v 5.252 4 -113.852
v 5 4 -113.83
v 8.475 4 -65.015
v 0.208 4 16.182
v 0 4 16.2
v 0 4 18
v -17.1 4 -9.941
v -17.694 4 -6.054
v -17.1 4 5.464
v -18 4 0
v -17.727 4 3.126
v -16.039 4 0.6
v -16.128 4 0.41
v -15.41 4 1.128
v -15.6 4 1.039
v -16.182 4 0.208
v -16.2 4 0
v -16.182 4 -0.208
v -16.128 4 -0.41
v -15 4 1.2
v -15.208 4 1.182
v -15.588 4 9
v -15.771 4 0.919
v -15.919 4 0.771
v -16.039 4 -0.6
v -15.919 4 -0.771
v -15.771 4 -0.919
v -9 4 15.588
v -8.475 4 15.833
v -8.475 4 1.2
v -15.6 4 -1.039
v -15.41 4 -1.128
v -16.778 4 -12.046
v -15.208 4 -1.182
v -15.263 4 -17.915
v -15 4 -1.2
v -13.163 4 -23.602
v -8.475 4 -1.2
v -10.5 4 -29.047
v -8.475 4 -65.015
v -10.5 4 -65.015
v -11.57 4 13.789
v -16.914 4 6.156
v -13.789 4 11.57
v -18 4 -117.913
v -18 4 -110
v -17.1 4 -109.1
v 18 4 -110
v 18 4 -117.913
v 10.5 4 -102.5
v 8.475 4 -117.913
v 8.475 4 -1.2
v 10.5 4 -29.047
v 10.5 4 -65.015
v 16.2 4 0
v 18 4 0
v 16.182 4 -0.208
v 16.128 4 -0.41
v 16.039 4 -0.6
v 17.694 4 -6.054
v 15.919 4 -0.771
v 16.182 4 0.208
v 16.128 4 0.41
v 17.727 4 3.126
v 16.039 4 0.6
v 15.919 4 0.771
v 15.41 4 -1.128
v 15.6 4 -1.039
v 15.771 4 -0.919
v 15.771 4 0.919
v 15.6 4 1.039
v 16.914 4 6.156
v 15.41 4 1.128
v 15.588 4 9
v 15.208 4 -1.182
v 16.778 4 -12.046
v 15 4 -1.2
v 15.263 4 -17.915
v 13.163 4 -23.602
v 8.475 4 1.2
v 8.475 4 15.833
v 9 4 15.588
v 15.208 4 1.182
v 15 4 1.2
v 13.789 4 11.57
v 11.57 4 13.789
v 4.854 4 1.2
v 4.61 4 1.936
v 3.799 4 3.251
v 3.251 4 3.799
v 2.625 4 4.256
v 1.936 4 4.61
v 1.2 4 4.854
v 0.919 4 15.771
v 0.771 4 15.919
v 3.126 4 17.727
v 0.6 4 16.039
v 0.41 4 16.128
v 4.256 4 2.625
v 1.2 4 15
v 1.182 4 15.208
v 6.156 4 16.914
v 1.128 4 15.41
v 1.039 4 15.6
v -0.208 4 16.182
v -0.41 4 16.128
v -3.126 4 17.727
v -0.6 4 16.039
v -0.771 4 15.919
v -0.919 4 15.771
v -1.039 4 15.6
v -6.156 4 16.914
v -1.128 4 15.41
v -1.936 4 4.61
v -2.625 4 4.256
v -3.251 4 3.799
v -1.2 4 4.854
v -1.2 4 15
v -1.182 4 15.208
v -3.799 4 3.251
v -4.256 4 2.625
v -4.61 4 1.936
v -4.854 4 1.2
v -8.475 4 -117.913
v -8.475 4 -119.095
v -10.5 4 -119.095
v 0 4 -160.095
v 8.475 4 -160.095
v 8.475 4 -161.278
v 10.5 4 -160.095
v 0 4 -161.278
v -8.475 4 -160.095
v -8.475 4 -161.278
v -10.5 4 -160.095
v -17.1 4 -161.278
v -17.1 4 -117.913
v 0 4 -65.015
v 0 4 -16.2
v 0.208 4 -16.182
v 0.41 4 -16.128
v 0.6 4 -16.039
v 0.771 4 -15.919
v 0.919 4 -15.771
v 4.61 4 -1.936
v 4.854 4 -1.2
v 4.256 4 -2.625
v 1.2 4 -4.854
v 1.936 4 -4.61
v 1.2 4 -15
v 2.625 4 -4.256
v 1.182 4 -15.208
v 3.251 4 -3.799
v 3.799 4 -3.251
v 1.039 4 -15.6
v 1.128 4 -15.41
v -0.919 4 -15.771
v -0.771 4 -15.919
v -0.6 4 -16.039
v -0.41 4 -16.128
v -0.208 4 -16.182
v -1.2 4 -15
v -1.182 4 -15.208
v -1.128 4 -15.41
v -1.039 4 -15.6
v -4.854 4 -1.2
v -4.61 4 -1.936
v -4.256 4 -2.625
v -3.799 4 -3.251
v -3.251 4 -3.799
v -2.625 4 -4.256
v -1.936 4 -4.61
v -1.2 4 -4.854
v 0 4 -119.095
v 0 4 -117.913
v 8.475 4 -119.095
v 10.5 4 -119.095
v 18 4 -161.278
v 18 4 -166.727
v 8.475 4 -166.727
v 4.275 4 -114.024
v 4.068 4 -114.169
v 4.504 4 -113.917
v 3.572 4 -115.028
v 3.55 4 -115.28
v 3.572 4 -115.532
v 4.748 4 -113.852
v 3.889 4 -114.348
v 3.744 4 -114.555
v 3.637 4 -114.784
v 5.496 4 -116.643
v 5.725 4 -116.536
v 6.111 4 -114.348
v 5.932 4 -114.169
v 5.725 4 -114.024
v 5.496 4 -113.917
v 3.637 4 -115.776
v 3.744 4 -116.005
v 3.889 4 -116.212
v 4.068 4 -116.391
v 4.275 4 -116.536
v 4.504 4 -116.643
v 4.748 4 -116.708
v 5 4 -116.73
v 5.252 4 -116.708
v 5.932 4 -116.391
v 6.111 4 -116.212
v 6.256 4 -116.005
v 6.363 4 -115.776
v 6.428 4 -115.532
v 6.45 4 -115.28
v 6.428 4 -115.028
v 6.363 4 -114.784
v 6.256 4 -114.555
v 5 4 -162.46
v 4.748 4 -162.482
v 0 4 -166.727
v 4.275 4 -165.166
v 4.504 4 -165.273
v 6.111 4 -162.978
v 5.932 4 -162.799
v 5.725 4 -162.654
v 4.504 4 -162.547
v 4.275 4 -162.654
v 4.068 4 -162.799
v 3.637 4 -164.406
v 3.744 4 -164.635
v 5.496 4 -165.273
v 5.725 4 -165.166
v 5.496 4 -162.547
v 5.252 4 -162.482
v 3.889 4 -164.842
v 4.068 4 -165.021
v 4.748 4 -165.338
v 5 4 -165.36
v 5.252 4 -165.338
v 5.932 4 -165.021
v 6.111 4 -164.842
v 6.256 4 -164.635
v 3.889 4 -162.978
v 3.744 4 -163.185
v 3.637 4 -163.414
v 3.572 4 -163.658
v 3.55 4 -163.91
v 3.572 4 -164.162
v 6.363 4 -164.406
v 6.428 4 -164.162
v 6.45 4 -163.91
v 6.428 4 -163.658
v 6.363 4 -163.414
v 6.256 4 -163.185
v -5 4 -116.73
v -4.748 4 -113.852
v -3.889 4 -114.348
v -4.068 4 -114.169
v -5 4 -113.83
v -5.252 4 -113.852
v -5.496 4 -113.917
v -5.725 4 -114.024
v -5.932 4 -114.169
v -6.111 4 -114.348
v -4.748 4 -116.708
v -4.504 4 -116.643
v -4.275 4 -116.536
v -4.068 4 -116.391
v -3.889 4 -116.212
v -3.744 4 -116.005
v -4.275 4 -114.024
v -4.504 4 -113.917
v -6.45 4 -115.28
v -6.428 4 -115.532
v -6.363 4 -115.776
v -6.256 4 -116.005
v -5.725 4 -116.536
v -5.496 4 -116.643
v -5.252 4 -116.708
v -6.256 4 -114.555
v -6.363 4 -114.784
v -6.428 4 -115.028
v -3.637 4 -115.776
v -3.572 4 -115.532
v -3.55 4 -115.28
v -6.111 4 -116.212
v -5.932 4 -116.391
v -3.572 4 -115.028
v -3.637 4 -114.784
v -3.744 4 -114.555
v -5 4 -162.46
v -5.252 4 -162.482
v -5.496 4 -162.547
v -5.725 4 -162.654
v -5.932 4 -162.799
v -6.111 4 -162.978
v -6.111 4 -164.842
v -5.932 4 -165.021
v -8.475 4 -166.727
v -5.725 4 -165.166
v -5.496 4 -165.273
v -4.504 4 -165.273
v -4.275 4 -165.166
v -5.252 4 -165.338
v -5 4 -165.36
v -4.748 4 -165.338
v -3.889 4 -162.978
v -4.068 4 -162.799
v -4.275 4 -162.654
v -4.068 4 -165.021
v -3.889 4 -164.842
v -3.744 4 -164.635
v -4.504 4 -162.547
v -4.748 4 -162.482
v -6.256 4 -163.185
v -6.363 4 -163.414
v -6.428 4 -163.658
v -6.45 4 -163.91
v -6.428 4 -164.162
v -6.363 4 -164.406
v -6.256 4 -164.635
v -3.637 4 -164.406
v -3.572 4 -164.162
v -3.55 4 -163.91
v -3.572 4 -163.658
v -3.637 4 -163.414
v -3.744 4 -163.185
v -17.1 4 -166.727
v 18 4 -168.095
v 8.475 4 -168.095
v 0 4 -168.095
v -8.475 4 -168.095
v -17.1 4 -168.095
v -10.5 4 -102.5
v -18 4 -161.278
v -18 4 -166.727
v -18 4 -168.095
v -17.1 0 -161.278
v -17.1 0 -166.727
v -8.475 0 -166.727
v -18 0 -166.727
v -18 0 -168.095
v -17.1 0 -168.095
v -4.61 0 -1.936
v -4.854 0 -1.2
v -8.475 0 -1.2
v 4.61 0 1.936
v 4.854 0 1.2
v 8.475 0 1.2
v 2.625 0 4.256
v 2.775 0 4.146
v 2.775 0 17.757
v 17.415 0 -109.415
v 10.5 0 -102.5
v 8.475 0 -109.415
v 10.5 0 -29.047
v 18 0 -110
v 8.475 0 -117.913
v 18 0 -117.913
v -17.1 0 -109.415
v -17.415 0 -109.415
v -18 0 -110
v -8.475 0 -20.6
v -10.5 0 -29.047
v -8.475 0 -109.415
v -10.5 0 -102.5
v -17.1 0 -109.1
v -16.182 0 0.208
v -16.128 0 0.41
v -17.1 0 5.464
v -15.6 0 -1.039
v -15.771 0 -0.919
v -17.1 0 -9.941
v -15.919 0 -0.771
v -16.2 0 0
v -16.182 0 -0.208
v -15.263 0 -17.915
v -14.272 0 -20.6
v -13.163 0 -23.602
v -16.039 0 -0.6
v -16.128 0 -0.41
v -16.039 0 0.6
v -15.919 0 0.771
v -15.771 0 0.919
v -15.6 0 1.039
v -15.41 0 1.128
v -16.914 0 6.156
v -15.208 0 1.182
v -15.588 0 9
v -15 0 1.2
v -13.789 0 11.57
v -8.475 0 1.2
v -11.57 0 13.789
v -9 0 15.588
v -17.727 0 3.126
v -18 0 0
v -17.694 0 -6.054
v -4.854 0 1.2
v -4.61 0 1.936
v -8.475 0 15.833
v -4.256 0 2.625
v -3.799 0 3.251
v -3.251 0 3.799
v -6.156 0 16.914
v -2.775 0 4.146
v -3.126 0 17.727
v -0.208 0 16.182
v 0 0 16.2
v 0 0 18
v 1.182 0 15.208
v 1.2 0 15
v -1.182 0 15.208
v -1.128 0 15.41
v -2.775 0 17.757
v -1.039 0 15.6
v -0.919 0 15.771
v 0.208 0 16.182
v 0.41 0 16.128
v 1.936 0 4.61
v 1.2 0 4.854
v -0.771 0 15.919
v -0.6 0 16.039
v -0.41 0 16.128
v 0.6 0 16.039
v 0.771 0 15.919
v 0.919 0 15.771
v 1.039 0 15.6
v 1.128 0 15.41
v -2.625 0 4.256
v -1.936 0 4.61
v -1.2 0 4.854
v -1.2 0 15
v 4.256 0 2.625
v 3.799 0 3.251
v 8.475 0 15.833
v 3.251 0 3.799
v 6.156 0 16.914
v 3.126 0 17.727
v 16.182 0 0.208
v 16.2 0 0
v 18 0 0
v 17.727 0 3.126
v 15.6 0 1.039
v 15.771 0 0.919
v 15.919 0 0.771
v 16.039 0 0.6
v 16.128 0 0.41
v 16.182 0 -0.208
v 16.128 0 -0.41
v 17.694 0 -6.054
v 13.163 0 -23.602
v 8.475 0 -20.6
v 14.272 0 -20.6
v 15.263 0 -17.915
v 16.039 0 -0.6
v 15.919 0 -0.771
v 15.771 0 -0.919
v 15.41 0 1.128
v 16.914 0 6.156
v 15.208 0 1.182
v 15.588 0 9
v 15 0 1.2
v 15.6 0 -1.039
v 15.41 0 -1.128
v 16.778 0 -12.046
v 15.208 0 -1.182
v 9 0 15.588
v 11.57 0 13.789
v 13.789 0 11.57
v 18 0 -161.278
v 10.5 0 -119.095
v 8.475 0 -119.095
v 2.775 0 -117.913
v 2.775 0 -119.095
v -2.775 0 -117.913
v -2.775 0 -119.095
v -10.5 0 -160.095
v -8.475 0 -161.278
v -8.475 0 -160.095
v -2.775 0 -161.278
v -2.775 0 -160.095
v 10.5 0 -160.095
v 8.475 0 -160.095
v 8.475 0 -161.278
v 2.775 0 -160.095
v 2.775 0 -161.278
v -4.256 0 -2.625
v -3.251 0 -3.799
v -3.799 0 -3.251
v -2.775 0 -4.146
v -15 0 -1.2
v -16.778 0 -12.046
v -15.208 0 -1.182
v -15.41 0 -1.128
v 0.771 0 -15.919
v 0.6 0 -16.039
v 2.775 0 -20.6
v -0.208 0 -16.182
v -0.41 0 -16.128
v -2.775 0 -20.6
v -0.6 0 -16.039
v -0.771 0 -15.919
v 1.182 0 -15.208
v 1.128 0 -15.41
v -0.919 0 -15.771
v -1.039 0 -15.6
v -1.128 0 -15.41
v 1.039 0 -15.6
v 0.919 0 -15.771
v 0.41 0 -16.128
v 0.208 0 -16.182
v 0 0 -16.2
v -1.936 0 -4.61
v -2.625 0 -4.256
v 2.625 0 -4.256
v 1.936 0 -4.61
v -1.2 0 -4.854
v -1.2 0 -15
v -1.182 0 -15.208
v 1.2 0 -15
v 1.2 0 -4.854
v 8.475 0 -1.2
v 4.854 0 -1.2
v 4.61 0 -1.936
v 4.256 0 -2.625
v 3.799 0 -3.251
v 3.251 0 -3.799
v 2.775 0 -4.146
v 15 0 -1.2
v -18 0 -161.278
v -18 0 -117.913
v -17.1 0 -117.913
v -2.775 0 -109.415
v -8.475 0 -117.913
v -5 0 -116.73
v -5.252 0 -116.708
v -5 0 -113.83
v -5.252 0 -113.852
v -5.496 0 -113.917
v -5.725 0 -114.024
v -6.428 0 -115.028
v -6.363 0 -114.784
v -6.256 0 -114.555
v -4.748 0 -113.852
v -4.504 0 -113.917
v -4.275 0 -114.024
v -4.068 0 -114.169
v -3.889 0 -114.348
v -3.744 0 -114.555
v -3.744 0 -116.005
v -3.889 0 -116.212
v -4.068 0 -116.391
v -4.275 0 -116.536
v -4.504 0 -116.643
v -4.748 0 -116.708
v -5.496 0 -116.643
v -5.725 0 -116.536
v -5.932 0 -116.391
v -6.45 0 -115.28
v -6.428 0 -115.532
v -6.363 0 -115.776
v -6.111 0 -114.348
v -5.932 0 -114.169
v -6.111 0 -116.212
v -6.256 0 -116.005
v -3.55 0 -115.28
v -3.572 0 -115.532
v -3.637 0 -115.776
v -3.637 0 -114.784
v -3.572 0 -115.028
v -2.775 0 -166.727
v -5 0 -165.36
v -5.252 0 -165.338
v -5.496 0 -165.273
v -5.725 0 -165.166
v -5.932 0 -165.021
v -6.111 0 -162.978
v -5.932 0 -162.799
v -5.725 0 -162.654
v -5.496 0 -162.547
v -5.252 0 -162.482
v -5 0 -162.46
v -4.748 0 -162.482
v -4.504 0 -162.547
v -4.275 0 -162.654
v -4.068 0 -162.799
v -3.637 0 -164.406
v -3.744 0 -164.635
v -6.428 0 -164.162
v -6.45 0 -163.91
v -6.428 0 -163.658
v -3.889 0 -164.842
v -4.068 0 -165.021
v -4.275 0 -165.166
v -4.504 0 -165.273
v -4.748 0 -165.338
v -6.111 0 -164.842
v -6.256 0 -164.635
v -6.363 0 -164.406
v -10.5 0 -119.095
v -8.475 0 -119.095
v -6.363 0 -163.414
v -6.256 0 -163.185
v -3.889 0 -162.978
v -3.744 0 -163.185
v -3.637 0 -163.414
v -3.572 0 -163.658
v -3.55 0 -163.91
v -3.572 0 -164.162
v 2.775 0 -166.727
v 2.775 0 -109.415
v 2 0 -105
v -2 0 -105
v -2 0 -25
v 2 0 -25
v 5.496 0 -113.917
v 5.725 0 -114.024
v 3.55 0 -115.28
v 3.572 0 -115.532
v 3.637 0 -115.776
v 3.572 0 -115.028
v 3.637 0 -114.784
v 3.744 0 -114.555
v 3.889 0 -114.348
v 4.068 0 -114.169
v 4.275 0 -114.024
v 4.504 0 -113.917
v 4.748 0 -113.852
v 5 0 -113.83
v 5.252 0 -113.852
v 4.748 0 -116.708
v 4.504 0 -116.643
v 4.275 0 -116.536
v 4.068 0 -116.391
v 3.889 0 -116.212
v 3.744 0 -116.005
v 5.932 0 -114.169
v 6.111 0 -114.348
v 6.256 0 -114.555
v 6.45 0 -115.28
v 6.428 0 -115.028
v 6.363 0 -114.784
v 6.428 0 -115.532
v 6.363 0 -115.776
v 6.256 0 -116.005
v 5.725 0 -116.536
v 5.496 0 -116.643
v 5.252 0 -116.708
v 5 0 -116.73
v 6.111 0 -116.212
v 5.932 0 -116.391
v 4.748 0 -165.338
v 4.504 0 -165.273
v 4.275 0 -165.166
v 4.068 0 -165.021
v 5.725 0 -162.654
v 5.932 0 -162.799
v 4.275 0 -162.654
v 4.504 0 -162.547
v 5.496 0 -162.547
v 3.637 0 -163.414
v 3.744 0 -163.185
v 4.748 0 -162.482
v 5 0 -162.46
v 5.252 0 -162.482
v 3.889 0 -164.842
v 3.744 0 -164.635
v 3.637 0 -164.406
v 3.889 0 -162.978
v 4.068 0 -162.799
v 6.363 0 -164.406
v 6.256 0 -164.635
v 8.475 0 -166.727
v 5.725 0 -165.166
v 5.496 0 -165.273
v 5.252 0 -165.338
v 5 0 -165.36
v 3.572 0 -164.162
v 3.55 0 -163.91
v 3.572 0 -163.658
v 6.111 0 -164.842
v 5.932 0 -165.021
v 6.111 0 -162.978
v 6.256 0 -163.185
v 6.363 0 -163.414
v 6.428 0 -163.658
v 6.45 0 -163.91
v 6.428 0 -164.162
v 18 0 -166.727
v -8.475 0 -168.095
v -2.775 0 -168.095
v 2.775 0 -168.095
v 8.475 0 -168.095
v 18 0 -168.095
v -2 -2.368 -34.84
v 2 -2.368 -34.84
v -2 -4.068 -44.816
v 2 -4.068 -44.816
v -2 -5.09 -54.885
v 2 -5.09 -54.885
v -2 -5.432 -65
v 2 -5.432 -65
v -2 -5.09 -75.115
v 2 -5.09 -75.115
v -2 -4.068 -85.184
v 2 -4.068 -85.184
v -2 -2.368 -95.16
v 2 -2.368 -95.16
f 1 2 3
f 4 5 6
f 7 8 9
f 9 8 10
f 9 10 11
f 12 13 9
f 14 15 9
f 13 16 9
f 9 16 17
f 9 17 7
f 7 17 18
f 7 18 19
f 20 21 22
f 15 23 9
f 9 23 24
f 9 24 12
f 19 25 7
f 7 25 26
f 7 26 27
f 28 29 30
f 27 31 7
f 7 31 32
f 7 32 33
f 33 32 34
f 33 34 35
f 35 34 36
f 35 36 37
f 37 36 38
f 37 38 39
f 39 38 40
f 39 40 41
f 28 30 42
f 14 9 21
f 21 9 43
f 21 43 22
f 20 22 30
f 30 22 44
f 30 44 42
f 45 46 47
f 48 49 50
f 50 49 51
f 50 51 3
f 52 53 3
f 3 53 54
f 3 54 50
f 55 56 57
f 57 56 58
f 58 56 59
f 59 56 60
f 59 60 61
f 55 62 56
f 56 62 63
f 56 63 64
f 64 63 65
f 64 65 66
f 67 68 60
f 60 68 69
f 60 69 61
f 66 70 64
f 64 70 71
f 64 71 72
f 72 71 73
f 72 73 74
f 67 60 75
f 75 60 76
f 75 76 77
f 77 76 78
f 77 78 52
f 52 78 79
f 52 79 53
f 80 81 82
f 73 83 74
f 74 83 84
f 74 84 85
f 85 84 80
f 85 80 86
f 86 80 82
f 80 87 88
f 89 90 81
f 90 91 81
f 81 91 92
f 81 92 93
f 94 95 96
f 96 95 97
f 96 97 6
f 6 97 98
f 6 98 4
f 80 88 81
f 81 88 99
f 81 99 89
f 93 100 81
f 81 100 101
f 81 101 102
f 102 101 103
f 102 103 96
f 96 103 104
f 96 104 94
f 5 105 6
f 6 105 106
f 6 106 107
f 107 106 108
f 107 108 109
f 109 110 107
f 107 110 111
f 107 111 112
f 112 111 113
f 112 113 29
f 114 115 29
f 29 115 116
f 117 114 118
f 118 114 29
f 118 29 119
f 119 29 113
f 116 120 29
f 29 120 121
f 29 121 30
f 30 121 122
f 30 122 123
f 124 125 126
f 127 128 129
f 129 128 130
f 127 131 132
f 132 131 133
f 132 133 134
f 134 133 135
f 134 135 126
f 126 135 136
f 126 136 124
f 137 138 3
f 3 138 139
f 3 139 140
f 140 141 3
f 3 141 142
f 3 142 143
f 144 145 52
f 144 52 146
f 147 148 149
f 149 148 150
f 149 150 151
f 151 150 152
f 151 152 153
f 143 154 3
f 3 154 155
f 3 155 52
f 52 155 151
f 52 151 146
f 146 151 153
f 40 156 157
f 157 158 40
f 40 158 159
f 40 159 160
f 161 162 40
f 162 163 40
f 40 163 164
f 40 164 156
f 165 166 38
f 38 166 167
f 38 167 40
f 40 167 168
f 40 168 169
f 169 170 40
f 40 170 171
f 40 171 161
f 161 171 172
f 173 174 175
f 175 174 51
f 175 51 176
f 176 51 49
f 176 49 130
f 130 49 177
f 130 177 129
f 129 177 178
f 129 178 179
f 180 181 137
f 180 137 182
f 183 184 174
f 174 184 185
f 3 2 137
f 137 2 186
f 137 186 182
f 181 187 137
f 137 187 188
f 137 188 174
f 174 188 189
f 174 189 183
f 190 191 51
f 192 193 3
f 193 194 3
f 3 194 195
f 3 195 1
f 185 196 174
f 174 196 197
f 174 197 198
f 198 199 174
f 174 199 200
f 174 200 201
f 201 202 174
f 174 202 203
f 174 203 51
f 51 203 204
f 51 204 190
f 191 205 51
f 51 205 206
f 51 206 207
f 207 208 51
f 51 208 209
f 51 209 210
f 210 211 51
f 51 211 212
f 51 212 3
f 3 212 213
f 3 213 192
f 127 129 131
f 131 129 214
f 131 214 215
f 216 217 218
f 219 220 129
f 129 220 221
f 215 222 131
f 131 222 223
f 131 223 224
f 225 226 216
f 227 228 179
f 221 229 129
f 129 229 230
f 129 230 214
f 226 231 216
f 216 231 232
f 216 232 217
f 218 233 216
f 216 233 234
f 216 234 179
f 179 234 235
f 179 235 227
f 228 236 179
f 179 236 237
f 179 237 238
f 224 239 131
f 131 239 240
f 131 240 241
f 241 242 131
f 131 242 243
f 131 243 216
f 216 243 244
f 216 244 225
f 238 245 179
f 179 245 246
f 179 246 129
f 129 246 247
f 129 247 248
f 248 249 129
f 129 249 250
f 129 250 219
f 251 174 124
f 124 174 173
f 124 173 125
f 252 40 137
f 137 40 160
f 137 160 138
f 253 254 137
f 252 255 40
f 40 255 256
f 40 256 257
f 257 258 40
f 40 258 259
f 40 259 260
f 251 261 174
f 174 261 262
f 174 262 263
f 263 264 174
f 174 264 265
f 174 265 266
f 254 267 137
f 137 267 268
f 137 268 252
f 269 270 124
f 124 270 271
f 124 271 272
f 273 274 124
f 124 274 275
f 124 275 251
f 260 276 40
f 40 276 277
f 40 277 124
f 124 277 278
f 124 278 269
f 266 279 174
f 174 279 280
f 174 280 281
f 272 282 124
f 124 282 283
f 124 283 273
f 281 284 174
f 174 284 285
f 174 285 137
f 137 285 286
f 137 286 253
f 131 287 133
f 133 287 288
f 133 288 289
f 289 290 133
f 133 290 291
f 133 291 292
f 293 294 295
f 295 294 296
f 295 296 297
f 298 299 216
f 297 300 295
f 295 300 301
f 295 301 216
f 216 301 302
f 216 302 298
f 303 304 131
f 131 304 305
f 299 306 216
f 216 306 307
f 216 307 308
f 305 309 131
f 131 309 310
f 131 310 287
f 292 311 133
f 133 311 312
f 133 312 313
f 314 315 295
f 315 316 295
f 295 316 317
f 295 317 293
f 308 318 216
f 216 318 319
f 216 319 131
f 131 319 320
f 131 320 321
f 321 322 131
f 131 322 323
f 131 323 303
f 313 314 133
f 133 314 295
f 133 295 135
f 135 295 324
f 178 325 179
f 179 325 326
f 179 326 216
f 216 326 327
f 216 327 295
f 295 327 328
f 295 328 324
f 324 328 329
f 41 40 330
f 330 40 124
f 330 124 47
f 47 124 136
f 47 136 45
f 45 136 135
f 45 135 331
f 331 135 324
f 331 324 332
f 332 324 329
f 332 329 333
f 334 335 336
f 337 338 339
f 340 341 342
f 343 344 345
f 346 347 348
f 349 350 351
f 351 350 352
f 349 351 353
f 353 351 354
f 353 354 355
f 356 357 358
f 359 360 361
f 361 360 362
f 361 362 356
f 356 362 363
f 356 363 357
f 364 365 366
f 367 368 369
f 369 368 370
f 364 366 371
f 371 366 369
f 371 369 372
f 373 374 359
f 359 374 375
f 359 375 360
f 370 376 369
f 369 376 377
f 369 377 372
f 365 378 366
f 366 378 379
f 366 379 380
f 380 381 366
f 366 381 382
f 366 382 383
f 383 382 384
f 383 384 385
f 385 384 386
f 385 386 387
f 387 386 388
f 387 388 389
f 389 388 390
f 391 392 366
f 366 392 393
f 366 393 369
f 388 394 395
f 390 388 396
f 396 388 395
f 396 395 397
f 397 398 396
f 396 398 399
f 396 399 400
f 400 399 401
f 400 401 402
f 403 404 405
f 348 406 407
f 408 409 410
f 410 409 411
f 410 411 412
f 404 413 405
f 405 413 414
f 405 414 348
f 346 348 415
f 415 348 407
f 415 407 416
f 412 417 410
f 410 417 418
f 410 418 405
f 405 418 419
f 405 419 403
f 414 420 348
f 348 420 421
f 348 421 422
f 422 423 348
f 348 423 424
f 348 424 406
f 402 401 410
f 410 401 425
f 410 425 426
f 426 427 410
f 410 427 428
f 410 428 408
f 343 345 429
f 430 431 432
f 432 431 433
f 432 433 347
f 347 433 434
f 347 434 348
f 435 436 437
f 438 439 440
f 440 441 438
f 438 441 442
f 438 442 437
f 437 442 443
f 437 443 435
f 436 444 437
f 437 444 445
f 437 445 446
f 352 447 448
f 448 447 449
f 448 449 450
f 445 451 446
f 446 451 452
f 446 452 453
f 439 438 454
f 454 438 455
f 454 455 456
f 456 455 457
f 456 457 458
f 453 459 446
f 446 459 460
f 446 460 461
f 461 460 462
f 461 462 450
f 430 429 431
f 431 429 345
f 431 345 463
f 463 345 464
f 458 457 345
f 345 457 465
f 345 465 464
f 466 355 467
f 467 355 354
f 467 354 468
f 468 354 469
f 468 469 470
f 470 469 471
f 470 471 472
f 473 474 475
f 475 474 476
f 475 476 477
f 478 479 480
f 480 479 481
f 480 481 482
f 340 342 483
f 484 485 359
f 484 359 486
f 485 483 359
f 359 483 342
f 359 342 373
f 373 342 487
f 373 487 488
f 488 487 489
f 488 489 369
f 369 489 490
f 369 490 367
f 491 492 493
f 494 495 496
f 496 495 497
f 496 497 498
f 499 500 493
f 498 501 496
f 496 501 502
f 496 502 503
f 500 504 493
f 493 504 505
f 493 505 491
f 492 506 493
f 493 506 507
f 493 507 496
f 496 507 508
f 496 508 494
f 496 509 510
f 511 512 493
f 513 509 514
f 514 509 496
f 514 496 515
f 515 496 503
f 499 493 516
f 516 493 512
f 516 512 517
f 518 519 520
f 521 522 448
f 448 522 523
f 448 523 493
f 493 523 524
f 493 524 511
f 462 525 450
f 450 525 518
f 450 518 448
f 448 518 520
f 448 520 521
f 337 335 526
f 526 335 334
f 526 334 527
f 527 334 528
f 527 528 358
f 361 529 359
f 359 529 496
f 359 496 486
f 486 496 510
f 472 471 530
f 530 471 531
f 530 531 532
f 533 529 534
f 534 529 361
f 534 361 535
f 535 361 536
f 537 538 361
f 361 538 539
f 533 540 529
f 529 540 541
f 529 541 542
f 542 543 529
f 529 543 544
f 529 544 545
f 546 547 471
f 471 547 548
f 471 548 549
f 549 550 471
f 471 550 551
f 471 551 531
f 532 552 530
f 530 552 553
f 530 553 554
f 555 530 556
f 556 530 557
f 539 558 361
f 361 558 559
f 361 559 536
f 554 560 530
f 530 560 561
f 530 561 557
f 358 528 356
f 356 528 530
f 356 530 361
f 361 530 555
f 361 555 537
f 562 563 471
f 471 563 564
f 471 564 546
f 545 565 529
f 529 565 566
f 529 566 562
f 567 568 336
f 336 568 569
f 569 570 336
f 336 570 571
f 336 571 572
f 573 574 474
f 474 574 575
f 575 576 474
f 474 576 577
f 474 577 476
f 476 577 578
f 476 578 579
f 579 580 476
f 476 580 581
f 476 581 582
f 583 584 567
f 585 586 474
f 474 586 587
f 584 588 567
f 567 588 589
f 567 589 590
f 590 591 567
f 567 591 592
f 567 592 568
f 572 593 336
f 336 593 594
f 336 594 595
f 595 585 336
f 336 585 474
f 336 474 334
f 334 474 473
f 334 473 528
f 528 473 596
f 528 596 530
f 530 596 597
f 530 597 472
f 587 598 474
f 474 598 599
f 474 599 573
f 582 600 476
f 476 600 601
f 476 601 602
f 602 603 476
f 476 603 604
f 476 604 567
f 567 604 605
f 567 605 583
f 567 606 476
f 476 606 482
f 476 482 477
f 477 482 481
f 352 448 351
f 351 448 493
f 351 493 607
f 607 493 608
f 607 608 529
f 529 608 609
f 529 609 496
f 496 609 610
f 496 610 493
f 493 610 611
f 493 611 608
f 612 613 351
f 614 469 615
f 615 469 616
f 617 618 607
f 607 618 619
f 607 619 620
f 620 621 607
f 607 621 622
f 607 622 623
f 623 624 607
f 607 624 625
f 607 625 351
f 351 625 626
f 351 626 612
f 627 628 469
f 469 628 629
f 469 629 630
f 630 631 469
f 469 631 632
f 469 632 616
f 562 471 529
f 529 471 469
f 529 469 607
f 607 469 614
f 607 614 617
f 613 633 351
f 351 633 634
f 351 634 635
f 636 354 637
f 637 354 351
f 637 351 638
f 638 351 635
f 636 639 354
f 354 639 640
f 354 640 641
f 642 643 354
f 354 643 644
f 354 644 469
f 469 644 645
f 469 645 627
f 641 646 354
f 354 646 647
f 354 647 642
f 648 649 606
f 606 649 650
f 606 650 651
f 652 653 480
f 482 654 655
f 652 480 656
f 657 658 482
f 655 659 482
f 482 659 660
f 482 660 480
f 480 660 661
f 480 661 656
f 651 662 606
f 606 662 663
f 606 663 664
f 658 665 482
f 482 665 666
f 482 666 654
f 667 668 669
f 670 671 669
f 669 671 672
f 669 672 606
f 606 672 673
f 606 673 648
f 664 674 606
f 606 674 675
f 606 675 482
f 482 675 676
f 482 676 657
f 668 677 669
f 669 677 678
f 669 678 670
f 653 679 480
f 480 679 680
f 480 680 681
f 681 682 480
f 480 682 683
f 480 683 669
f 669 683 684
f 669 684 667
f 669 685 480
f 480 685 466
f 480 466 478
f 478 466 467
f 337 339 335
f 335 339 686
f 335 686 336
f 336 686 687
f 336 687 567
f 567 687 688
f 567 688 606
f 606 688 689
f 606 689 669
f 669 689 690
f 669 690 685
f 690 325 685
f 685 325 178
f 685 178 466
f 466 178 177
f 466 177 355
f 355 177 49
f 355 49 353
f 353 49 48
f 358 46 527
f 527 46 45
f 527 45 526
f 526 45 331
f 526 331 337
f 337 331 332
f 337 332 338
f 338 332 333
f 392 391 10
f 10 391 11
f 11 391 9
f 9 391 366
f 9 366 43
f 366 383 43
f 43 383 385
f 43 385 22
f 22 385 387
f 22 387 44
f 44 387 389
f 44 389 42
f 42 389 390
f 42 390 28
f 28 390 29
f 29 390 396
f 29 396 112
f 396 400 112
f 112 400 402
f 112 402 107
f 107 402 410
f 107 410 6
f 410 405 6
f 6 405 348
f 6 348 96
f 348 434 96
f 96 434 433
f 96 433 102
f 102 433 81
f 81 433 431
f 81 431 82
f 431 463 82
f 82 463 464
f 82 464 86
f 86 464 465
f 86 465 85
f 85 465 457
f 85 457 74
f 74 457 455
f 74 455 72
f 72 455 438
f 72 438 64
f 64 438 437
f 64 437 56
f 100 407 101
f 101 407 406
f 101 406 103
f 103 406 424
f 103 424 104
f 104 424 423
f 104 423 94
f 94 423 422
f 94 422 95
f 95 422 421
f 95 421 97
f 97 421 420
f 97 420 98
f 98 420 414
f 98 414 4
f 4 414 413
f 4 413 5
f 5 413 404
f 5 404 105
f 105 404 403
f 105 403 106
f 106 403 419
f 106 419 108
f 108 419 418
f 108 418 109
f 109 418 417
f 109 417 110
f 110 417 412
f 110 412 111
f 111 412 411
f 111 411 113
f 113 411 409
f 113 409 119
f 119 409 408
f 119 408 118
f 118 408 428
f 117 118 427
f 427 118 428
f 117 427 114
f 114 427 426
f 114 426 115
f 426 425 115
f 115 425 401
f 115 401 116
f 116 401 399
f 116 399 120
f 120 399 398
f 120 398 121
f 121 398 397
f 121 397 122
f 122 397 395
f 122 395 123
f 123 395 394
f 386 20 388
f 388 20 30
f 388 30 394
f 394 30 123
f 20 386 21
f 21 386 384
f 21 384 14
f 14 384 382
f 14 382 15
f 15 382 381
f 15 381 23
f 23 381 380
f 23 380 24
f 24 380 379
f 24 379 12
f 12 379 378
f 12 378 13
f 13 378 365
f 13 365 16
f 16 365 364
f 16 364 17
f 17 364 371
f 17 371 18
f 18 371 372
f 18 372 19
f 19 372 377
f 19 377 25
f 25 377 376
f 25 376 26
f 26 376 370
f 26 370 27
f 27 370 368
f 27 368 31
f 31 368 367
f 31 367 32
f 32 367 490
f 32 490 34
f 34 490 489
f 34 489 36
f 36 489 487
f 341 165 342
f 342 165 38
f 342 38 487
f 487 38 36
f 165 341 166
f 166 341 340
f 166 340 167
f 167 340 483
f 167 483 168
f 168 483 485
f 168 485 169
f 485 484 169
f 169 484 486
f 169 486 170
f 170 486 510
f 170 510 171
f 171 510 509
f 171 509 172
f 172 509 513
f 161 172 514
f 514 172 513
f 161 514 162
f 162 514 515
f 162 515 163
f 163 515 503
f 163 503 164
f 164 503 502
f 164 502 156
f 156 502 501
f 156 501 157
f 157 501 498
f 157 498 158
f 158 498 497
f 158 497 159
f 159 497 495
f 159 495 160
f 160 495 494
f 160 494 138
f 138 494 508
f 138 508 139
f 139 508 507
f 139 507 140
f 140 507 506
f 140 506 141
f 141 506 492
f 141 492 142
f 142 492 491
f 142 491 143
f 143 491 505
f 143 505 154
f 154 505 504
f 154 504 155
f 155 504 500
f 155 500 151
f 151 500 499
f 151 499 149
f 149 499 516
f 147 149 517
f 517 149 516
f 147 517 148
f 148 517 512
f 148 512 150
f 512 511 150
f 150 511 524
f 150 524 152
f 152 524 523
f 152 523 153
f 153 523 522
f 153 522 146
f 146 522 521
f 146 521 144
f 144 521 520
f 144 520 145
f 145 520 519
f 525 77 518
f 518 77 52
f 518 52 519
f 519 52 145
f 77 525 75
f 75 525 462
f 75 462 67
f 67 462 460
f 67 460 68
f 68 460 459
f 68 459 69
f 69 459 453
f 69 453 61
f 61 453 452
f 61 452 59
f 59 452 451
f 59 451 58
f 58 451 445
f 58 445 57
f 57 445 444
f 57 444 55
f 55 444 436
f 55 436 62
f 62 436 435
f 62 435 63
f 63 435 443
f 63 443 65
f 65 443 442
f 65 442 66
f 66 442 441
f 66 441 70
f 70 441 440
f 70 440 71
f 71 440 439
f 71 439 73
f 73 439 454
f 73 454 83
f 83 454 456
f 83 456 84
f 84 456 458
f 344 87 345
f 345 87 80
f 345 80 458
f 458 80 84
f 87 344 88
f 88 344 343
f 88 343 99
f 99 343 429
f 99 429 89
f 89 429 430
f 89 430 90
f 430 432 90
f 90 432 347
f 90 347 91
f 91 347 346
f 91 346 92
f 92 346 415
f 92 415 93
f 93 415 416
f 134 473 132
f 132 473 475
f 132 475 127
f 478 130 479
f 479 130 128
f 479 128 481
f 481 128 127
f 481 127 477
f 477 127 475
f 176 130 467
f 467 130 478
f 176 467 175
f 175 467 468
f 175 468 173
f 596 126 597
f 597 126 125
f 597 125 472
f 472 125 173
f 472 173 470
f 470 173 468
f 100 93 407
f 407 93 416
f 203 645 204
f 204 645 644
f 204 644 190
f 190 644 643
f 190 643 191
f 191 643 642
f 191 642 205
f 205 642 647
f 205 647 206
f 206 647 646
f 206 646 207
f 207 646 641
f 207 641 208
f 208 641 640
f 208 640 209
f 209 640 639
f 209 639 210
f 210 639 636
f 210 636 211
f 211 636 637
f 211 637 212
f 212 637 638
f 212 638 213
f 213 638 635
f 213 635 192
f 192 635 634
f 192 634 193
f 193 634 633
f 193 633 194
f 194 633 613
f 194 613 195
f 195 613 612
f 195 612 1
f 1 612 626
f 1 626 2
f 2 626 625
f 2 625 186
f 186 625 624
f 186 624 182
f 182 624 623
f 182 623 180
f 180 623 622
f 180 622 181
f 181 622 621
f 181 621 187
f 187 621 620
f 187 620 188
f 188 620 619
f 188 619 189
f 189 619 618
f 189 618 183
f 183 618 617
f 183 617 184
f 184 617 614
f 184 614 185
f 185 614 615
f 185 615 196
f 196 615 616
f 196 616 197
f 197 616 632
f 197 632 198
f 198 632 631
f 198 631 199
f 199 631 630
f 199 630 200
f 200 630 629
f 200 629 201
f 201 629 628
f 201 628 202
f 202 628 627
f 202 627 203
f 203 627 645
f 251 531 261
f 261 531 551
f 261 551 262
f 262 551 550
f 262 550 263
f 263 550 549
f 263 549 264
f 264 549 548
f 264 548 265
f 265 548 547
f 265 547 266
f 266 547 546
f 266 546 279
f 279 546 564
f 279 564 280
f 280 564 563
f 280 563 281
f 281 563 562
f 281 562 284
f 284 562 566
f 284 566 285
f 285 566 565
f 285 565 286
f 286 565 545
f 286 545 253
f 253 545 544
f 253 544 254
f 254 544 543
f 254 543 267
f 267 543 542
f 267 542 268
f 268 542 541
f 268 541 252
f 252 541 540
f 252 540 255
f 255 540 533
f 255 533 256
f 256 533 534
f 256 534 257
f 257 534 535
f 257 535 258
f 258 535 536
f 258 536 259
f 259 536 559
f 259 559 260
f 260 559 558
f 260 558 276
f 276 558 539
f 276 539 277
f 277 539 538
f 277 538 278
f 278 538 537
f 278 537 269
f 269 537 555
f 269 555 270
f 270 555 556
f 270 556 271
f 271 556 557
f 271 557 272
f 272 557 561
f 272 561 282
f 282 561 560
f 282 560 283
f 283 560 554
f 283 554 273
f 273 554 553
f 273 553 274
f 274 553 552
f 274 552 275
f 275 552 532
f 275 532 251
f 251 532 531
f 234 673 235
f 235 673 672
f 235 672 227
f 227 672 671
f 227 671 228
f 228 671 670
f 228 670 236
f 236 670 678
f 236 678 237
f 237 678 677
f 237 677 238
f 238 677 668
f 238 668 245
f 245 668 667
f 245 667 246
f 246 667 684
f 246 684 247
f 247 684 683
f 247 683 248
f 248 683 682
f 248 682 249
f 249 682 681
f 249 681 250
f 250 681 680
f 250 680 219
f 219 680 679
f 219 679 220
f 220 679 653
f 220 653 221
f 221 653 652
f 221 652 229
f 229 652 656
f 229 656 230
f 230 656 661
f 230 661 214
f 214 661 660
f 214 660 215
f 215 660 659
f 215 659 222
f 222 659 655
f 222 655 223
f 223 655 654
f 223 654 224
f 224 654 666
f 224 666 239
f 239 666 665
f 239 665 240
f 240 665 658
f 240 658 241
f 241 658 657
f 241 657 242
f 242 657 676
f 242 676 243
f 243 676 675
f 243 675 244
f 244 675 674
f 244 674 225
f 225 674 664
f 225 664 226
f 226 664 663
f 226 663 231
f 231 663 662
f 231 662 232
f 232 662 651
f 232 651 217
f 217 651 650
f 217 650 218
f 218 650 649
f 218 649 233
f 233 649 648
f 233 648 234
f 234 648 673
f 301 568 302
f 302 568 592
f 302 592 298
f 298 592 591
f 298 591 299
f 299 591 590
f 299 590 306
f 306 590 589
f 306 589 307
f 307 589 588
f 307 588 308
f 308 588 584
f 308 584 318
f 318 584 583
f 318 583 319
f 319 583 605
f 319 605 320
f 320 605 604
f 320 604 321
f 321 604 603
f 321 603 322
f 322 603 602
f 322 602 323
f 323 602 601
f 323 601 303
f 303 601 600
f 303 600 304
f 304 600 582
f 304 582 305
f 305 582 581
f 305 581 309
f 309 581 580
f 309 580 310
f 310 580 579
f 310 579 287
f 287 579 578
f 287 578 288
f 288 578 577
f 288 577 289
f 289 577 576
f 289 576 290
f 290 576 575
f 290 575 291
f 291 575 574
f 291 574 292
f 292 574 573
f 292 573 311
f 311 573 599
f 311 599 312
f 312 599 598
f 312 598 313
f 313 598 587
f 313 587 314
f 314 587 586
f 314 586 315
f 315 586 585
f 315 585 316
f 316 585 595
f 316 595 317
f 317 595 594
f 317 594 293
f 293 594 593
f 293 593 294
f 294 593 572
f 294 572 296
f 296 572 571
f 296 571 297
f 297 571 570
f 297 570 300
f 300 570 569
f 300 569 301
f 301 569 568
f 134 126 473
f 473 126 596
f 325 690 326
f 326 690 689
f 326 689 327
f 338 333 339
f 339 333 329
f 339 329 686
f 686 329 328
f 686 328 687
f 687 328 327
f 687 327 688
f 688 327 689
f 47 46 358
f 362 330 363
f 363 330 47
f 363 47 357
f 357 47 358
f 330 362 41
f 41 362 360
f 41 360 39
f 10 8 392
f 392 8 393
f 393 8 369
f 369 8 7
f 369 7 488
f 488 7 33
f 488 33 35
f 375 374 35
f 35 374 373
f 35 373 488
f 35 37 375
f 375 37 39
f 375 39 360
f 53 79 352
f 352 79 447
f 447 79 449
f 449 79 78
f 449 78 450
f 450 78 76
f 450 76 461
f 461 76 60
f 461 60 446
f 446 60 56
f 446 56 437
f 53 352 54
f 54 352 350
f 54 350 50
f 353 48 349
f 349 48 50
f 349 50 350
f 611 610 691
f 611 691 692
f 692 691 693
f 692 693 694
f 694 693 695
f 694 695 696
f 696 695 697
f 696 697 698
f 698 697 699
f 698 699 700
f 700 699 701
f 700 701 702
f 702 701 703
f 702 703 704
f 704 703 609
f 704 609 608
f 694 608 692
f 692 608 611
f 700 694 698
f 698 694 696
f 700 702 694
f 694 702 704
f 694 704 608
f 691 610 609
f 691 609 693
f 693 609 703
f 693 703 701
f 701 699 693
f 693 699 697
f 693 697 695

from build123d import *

# Parameters (mm, degrees)
SKETCH_1_R          = 1.45
SKETCH_1_W          = 21
SKETCH_1_H          = 41
EXTRUDE_1_DEPTH     = 4
CUT_EXTRUDE_1_DEPTH = 170.103308735
EXTRUDE_2_DEPTH     = 2


with BuildPart() as part:
    # 스케치1 → 보스-돌출1 (new body)
    with BuildSketch(Plane(origin=(0, 0, 0), x_dir=(1, 0, 0), z_dir=(0, 1, 0))):
        with BuildLine():
            Line((18, 0), (18, 168.095))
            Line((18, 168.095), (-18, 168.095))
            Line((-18, 168.095), (-18, 0))
            ThreePointArc((-18, 0), (0, -18), (18, 0))
        make_face()
        with BuildLine():
            ThreePointArc((-15, -1.2), (-16.2, 0), (-15, 1.2))
            Line((-15, 1.2), (-4.85386444, 1.2))
            ThreePointArc((-4.85386444, 1.2), (-3.535533906, 3.535533906), (-1.2, 4.85386444))
            Line((-1.2, 4.85386444), (-1.2, 15))
            ThreePointArc((-1.2, 15), (0, 16.2), (1.2, 15))
            Line((1.2, 15), (1.2, 4.85386444))
            ThreePointArc((1.2, 4.85386444), (3.535533906, 3.535533906), (4.85386444, 1.2))
            Line((4.85386444, 1.2), (15, 1.2))
            ThreePointArc((15, 1.2), (16.2, 0), (15, -1.2))
            Line((15, -1.2), (4.85386444, -1.2))
            ThreePointArc((4.85386444, -1.2), (3.535533906, -3.535533906), (1.2, -4.85386444))
            Line((1.2, -4.85386444), (1.2, -15))
            ThreePointArc((1.2, -15), (0, -16.2), (-1.2, -15))
            Line((-1.2, -15), (-1.2, -4.85386444))
            ThreePointArc((-1.2, -4.85386444), (-3.535533906, -3.535533906), (-4.85386444, -1.2))
            Line((-4.85386444, -1.2), (-15, -1.2))
        make_face(mode=Mode.SUBTRACT)
        with Locations(Location((-5, 115.28, 0), (0, 0, 270))):
            Circle(SKETCH_1_R, mode=Mode.SUBTRACT)
        with Locations(Location((-5, 163.91, 0), (0, 0, 270))):
            Circle(SKETCH_1_R, mode=Mode.SUBTRACT)
        with Locations(Location((5, 115.28, 0), (0, 0, 270))):
            Circle(SKETCH_1_R, mode=Mode.SUBTRACT)
        with Locations((0, 139.595)):
            Rectangle(SKETCH_1_W, SKETCH_1_H, mode=Mode.SUBTRACT)
        with Locations(Location((5, 163.91, 0), (0, 0, 270))):
            Circle(SKETCH_1_R, mode=Mode.SUBTRACT)
    extrude(amount=EXTRUDE_1_DEPTH)

    # 스케치2 → 컷-돌출1 (cut, through all)
    with BuildSketch(Plane(origin=(0, 4, 0), x_dir=(1, 0, 0), z_dir=(0, 1, 0))):
        with BuildLine():
            Line((-18, 110), (-10.5, 102.5))
            Line((-10.5, 102.5), (-10.5, 29.047375097))
            ThreePointArc((-10.5, 29.047375097), (-16.094750193, 15), (-18, 0))
            Line((-18, 0), (-18, 110))
        make_face()
    cut_extrude_1 = extrude(amount=-CUT_EXTRUDE_1_DEPTH, mode=Mode.SUBTRACT)

    # 대칭 복사1: 컷-돌출1 across plane
    add(cut_extrude_1.mirror(Plane(origin=(0, 0, 0), x_dir=(0, 0, 1), z_dir=(1, 0, 0))), mode=Mode.SUBTRACT)

    # 스케치3 → 보스-돌출2 (add, symmetric)
    with BuildSketch(Plane(origin=(0, 0, 0), x_dir=(0, 0, -1), z_dir=(1, 0, 0))):
        with BuildLine():
            Line((25, 0), (105, 0))
            ThreePointArc((105, 0), (65, -5.431677052), (25, 0))
        make_face()
    extrude(amount=EXTRUDE_2_DEPTH, both=True)


solid = part.part
